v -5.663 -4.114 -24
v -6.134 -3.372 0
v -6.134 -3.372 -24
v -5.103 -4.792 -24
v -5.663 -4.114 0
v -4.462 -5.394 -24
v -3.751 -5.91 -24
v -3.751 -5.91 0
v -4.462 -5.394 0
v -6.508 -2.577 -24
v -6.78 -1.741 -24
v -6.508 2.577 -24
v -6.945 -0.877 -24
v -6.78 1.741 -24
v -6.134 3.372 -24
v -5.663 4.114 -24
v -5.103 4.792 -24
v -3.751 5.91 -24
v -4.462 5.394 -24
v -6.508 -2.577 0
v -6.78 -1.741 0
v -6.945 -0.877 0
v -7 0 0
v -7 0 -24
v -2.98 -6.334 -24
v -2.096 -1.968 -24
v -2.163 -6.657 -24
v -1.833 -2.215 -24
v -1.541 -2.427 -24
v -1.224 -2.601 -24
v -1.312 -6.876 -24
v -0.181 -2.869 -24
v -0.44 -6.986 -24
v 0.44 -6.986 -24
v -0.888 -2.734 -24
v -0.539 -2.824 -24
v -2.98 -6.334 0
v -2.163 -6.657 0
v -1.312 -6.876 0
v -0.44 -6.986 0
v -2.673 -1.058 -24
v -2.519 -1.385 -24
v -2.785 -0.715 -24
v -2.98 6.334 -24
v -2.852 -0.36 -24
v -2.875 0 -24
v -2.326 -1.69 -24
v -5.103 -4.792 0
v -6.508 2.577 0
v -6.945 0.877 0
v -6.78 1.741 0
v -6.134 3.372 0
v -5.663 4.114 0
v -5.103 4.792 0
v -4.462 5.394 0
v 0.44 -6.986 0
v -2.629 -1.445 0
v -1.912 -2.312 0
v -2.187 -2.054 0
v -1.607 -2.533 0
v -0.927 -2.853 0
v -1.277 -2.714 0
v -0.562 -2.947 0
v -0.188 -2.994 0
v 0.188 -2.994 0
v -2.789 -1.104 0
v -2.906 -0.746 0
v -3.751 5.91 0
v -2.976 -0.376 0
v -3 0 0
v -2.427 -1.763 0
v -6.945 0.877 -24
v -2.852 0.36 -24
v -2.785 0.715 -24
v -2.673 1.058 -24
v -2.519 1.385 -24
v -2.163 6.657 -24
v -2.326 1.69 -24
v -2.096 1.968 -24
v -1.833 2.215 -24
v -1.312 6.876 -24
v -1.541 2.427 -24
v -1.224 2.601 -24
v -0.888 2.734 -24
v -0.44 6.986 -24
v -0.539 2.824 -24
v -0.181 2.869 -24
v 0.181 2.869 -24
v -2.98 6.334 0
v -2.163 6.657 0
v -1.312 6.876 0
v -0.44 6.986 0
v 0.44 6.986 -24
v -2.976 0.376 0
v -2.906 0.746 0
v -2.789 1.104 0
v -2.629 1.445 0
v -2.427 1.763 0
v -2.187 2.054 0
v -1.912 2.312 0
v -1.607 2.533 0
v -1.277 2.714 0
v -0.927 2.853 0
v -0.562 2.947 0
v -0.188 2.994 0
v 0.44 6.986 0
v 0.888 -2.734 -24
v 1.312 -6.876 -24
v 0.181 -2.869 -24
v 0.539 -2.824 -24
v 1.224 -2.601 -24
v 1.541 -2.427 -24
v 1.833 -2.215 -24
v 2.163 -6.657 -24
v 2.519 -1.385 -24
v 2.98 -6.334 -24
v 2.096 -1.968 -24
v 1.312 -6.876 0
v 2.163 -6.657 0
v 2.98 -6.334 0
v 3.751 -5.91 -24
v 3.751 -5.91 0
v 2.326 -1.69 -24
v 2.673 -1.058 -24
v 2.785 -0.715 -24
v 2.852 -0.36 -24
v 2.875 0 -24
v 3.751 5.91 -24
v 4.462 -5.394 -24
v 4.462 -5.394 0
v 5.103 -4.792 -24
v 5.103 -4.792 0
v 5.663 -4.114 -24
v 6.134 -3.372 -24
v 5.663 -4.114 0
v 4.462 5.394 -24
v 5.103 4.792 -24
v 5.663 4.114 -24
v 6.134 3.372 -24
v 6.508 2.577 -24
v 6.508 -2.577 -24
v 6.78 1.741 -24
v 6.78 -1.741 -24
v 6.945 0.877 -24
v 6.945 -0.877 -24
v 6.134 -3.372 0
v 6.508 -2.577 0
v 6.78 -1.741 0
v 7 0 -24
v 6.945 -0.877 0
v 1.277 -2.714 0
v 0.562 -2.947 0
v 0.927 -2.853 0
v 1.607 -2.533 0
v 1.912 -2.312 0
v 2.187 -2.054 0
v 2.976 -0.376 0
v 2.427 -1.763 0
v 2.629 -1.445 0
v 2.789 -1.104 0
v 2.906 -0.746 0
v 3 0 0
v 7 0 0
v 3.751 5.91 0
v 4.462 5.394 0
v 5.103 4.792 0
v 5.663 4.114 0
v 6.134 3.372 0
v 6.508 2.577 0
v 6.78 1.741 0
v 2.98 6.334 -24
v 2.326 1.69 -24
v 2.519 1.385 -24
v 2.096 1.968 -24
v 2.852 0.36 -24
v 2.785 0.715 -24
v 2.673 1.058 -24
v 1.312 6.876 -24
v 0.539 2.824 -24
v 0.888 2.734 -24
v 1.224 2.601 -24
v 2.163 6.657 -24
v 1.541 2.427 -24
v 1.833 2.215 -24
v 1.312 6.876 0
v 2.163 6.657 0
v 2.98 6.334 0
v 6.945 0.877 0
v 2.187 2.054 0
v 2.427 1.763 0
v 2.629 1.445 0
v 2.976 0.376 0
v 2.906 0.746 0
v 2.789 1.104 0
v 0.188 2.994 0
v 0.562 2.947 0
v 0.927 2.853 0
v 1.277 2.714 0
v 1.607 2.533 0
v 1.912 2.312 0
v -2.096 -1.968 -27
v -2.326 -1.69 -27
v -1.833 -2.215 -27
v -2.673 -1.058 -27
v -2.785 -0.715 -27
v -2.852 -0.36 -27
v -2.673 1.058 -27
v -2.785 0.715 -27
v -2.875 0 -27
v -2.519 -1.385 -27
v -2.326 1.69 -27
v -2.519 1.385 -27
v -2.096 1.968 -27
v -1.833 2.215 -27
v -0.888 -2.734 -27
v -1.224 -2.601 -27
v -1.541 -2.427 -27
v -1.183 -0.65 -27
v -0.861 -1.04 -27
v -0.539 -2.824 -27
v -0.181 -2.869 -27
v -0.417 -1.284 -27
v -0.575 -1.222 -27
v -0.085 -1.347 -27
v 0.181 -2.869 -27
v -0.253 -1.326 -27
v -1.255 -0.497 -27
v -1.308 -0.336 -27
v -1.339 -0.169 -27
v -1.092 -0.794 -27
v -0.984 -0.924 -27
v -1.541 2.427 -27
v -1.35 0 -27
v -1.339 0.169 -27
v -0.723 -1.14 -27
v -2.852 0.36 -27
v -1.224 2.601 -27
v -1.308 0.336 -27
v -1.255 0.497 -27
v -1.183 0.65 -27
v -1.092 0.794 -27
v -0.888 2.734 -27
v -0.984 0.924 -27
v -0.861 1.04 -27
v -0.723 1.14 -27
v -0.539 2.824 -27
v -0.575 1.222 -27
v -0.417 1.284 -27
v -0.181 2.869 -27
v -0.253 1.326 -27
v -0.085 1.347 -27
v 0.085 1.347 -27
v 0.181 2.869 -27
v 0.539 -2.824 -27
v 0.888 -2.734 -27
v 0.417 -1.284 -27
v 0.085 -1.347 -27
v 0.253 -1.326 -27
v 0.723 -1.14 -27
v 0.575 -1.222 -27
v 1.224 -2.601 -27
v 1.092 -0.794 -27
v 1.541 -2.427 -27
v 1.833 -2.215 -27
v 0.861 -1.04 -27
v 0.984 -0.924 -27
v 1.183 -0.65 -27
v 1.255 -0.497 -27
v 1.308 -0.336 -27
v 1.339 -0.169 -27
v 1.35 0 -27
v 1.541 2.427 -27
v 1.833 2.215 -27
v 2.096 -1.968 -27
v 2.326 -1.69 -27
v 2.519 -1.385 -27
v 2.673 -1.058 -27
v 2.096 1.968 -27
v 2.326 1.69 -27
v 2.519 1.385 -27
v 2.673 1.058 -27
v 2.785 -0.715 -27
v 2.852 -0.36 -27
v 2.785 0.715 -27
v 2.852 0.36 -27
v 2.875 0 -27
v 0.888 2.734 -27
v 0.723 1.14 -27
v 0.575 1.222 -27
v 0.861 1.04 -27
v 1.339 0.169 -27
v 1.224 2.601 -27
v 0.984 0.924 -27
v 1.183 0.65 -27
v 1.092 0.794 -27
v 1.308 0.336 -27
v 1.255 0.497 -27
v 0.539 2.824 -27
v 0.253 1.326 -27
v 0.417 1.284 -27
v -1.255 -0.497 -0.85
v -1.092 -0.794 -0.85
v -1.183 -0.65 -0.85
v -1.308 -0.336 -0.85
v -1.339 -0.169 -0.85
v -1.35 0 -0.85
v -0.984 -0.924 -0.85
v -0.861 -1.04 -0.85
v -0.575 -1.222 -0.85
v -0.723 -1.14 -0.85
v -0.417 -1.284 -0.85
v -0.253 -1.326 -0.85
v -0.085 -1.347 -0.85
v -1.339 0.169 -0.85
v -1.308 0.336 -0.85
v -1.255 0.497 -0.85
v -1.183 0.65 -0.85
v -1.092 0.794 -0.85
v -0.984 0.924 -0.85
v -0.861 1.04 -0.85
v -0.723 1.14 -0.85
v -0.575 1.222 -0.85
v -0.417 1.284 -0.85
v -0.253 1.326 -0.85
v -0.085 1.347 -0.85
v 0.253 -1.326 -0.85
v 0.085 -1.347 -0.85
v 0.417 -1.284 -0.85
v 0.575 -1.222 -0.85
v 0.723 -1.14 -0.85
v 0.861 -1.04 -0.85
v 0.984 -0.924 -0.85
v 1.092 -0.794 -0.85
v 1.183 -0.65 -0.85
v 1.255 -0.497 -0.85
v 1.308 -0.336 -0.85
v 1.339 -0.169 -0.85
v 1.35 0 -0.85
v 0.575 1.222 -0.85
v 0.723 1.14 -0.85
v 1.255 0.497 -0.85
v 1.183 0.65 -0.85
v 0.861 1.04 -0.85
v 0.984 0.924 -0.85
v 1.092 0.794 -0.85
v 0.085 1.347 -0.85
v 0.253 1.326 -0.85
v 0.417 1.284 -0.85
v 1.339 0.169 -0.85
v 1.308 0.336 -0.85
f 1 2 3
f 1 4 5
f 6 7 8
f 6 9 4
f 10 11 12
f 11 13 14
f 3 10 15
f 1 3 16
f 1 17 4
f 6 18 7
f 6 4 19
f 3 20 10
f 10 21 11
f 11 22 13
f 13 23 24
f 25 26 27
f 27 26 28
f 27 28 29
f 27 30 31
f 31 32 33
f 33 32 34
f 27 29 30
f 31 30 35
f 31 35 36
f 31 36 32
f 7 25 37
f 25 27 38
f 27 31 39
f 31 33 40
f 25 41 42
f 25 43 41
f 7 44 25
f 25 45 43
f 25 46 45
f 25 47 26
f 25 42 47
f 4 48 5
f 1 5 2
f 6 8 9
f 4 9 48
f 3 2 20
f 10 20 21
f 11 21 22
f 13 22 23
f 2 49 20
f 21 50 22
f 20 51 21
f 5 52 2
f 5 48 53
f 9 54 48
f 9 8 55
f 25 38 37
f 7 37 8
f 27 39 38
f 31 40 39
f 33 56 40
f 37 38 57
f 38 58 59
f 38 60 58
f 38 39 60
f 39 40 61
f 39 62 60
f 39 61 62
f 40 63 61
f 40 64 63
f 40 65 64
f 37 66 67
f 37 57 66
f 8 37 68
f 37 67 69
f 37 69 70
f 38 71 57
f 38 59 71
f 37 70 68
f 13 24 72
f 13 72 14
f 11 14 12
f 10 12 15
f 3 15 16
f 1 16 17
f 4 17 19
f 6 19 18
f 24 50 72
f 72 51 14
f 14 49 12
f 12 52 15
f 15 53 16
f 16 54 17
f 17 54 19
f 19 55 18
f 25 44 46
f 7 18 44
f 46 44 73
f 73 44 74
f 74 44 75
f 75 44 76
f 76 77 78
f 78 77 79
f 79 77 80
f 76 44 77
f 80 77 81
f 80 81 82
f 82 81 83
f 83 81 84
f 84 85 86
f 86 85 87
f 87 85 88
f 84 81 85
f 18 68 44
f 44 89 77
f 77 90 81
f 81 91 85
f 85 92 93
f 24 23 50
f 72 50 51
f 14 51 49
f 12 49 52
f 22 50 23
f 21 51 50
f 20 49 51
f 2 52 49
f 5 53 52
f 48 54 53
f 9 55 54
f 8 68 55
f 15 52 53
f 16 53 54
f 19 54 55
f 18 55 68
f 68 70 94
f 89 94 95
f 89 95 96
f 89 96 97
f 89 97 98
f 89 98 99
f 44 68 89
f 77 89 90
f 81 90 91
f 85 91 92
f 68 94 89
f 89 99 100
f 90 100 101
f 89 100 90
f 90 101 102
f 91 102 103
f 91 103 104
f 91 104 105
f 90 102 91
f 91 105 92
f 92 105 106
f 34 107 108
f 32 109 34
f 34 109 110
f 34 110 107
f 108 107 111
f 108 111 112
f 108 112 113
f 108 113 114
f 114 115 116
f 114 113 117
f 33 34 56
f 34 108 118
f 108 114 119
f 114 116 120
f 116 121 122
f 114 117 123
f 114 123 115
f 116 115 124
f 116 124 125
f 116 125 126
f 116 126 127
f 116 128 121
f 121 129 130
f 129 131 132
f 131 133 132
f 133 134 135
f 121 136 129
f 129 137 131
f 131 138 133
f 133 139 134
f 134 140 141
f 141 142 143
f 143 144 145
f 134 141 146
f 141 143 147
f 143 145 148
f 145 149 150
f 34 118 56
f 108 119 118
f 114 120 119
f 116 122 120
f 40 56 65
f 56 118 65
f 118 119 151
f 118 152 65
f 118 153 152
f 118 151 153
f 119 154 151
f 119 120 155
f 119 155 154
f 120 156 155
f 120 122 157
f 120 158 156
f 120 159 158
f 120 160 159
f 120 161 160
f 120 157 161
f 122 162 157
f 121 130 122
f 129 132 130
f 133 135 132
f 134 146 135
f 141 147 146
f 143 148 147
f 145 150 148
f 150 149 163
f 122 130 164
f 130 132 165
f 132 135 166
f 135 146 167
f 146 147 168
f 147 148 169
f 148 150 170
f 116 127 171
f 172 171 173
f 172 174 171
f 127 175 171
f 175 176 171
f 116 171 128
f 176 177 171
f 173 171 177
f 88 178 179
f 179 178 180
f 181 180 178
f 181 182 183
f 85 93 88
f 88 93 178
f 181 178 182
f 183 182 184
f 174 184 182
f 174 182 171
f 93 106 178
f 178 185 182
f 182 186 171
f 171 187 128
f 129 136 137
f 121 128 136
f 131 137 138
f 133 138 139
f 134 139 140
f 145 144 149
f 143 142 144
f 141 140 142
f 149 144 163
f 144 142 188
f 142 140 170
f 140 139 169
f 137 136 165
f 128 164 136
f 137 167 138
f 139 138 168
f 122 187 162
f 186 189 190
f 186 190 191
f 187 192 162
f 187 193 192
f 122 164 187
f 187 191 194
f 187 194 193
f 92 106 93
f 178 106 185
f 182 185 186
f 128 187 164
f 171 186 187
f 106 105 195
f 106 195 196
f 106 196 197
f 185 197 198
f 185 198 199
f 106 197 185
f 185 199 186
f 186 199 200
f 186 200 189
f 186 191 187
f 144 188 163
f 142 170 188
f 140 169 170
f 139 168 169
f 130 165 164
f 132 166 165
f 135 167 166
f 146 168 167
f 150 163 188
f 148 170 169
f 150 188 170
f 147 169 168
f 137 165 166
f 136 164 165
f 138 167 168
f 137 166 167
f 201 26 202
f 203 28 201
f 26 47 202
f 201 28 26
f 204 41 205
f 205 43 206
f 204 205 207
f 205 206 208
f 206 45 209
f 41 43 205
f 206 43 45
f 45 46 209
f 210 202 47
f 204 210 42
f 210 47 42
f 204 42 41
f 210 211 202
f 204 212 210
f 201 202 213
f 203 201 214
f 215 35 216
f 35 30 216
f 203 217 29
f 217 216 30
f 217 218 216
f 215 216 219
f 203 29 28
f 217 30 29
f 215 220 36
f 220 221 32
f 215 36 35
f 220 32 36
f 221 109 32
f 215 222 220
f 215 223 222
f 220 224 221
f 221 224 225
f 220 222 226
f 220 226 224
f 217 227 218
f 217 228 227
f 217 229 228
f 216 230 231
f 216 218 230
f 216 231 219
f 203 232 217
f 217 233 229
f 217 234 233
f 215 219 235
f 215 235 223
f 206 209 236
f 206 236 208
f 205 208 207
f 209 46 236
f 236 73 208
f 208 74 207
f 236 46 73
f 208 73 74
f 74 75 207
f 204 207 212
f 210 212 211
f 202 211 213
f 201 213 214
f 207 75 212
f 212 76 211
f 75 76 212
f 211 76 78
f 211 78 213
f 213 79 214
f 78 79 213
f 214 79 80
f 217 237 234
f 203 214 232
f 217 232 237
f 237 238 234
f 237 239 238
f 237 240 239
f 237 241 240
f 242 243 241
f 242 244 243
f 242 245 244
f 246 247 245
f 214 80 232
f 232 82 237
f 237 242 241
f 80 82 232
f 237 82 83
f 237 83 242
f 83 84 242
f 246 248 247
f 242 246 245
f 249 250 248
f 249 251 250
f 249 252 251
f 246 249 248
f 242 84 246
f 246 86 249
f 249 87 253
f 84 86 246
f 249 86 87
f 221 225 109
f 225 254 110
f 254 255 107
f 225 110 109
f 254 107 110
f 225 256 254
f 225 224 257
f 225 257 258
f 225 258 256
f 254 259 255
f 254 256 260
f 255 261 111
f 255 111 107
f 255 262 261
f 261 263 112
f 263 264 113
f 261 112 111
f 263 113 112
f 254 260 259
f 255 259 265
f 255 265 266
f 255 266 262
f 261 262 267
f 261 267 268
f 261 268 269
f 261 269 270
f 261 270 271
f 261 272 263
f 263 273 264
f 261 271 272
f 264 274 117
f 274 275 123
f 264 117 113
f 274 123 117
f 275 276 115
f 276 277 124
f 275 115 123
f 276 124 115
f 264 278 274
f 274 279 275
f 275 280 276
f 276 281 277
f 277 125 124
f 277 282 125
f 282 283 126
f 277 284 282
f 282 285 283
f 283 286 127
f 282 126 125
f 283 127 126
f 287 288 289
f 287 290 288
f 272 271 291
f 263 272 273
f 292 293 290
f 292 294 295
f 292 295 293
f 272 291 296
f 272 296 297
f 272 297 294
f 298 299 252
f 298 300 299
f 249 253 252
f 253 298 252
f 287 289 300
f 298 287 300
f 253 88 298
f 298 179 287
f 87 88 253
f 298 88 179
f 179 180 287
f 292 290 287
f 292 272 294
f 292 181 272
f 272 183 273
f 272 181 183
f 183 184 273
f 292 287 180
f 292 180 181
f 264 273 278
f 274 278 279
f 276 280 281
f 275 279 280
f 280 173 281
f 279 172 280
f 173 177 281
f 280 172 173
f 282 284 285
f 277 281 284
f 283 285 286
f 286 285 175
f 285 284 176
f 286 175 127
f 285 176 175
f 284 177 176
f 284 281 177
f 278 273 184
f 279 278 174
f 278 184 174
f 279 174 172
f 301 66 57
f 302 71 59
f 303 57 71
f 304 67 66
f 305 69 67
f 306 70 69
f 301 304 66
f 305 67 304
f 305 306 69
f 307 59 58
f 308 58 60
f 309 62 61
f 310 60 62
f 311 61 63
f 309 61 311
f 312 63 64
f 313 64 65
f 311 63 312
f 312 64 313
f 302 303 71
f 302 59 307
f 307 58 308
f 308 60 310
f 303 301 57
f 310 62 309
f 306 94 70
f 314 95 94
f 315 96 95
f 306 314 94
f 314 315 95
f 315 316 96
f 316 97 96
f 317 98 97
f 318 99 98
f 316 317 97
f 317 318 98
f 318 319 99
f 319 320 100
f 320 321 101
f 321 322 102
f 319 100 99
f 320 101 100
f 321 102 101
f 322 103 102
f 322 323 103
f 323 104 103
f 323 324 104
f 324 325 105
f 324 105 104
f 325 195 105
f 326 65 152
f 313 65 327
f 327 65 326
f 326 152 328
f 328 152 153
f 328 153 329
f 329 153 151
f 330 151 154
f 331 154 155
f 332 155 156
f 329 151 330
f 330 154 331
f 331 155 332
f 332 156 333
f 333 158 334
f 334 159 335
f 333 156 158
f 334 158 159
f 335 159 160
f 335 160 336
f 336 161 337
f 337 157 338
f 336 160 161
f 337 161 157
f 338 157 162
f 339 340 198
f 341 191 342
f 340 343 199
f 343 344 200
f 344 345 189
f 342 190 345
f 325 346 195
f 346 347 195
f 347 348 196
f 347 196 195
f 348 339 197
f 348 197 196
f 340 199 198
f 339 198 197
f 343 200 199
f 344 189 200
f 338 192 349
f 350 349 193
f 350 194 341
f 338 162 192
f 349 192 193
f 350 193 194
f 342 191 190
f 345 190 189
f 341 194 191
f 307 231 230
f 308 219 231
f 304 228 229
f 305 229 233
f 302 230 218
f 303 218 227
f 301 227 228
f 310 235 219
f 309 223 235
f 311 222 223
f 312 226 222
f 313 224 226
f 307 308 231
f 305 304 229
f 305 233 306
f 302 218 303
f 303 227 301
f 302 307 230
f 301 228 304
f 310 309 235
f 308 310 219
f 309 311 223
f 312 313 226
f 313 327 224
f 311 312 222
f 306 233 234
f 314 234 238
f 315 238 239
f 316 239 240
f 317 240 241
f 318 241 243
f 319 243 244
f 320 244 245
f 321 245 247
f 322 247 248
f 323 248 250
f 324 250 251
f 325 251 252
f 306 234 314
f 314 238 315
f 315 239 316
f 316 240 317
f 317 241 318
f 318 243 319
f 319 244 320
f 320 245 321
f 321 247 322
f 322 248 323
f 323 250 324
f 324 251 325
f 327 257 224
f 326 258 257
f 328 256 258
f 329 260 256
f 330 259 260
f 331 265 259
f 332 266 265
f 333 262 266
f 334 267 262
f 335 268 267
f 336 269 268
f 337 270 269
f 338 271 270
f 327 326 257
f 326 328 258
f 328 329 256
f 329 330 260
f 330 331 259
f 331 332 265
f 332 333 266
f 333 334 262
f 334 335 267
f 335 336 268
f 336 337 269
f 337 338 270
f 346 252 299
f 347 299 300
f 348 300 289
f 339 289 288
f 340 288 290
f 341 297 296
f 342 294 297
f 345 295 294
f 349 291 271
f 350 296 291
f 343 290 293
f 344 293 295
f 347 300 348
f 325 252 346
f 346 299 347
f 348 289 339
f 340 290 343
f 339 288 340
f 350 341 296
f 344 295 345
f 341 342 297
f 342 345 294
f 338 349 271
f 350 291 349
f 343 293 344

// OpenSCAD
$fn = 50;


difference() {
	union() {
		translate(v = [0, 0, -24.0000000000]) {
			cylinder(h = 24, r = 7.0000000000);
		}
		#translate(v = [0, 0, -27.0000000000]) {
			cylinder(h = 27, r = 2.8750000000);
		}
	}
	union() {
		translate(v = [0, 0, 0]) {
			rotate(a = [0, 0, 0]) {
				difference() {
					union() {
						translate(v = [0, 0, -27.0000000000]) {
							cylinder(h = 27, r = 1.0000000000);
						}
						translate(v = [0, 0, -0.8500000000]) {
							cylinder(h = 0.8500000000, r1 = 1.3500000000, r2 = 3.0000000000);
						}
						translate(v = [0, 0, -27.0000000000]) {
							cylinder(h = 27, r = 1.3500000000);
						}
						translate(v = [0, 0, -27.0000000000]) {
							cylinder(h = 27, r = 1.0000000000);
						}
					}
					union();
				}
			}
		}
	}
}
